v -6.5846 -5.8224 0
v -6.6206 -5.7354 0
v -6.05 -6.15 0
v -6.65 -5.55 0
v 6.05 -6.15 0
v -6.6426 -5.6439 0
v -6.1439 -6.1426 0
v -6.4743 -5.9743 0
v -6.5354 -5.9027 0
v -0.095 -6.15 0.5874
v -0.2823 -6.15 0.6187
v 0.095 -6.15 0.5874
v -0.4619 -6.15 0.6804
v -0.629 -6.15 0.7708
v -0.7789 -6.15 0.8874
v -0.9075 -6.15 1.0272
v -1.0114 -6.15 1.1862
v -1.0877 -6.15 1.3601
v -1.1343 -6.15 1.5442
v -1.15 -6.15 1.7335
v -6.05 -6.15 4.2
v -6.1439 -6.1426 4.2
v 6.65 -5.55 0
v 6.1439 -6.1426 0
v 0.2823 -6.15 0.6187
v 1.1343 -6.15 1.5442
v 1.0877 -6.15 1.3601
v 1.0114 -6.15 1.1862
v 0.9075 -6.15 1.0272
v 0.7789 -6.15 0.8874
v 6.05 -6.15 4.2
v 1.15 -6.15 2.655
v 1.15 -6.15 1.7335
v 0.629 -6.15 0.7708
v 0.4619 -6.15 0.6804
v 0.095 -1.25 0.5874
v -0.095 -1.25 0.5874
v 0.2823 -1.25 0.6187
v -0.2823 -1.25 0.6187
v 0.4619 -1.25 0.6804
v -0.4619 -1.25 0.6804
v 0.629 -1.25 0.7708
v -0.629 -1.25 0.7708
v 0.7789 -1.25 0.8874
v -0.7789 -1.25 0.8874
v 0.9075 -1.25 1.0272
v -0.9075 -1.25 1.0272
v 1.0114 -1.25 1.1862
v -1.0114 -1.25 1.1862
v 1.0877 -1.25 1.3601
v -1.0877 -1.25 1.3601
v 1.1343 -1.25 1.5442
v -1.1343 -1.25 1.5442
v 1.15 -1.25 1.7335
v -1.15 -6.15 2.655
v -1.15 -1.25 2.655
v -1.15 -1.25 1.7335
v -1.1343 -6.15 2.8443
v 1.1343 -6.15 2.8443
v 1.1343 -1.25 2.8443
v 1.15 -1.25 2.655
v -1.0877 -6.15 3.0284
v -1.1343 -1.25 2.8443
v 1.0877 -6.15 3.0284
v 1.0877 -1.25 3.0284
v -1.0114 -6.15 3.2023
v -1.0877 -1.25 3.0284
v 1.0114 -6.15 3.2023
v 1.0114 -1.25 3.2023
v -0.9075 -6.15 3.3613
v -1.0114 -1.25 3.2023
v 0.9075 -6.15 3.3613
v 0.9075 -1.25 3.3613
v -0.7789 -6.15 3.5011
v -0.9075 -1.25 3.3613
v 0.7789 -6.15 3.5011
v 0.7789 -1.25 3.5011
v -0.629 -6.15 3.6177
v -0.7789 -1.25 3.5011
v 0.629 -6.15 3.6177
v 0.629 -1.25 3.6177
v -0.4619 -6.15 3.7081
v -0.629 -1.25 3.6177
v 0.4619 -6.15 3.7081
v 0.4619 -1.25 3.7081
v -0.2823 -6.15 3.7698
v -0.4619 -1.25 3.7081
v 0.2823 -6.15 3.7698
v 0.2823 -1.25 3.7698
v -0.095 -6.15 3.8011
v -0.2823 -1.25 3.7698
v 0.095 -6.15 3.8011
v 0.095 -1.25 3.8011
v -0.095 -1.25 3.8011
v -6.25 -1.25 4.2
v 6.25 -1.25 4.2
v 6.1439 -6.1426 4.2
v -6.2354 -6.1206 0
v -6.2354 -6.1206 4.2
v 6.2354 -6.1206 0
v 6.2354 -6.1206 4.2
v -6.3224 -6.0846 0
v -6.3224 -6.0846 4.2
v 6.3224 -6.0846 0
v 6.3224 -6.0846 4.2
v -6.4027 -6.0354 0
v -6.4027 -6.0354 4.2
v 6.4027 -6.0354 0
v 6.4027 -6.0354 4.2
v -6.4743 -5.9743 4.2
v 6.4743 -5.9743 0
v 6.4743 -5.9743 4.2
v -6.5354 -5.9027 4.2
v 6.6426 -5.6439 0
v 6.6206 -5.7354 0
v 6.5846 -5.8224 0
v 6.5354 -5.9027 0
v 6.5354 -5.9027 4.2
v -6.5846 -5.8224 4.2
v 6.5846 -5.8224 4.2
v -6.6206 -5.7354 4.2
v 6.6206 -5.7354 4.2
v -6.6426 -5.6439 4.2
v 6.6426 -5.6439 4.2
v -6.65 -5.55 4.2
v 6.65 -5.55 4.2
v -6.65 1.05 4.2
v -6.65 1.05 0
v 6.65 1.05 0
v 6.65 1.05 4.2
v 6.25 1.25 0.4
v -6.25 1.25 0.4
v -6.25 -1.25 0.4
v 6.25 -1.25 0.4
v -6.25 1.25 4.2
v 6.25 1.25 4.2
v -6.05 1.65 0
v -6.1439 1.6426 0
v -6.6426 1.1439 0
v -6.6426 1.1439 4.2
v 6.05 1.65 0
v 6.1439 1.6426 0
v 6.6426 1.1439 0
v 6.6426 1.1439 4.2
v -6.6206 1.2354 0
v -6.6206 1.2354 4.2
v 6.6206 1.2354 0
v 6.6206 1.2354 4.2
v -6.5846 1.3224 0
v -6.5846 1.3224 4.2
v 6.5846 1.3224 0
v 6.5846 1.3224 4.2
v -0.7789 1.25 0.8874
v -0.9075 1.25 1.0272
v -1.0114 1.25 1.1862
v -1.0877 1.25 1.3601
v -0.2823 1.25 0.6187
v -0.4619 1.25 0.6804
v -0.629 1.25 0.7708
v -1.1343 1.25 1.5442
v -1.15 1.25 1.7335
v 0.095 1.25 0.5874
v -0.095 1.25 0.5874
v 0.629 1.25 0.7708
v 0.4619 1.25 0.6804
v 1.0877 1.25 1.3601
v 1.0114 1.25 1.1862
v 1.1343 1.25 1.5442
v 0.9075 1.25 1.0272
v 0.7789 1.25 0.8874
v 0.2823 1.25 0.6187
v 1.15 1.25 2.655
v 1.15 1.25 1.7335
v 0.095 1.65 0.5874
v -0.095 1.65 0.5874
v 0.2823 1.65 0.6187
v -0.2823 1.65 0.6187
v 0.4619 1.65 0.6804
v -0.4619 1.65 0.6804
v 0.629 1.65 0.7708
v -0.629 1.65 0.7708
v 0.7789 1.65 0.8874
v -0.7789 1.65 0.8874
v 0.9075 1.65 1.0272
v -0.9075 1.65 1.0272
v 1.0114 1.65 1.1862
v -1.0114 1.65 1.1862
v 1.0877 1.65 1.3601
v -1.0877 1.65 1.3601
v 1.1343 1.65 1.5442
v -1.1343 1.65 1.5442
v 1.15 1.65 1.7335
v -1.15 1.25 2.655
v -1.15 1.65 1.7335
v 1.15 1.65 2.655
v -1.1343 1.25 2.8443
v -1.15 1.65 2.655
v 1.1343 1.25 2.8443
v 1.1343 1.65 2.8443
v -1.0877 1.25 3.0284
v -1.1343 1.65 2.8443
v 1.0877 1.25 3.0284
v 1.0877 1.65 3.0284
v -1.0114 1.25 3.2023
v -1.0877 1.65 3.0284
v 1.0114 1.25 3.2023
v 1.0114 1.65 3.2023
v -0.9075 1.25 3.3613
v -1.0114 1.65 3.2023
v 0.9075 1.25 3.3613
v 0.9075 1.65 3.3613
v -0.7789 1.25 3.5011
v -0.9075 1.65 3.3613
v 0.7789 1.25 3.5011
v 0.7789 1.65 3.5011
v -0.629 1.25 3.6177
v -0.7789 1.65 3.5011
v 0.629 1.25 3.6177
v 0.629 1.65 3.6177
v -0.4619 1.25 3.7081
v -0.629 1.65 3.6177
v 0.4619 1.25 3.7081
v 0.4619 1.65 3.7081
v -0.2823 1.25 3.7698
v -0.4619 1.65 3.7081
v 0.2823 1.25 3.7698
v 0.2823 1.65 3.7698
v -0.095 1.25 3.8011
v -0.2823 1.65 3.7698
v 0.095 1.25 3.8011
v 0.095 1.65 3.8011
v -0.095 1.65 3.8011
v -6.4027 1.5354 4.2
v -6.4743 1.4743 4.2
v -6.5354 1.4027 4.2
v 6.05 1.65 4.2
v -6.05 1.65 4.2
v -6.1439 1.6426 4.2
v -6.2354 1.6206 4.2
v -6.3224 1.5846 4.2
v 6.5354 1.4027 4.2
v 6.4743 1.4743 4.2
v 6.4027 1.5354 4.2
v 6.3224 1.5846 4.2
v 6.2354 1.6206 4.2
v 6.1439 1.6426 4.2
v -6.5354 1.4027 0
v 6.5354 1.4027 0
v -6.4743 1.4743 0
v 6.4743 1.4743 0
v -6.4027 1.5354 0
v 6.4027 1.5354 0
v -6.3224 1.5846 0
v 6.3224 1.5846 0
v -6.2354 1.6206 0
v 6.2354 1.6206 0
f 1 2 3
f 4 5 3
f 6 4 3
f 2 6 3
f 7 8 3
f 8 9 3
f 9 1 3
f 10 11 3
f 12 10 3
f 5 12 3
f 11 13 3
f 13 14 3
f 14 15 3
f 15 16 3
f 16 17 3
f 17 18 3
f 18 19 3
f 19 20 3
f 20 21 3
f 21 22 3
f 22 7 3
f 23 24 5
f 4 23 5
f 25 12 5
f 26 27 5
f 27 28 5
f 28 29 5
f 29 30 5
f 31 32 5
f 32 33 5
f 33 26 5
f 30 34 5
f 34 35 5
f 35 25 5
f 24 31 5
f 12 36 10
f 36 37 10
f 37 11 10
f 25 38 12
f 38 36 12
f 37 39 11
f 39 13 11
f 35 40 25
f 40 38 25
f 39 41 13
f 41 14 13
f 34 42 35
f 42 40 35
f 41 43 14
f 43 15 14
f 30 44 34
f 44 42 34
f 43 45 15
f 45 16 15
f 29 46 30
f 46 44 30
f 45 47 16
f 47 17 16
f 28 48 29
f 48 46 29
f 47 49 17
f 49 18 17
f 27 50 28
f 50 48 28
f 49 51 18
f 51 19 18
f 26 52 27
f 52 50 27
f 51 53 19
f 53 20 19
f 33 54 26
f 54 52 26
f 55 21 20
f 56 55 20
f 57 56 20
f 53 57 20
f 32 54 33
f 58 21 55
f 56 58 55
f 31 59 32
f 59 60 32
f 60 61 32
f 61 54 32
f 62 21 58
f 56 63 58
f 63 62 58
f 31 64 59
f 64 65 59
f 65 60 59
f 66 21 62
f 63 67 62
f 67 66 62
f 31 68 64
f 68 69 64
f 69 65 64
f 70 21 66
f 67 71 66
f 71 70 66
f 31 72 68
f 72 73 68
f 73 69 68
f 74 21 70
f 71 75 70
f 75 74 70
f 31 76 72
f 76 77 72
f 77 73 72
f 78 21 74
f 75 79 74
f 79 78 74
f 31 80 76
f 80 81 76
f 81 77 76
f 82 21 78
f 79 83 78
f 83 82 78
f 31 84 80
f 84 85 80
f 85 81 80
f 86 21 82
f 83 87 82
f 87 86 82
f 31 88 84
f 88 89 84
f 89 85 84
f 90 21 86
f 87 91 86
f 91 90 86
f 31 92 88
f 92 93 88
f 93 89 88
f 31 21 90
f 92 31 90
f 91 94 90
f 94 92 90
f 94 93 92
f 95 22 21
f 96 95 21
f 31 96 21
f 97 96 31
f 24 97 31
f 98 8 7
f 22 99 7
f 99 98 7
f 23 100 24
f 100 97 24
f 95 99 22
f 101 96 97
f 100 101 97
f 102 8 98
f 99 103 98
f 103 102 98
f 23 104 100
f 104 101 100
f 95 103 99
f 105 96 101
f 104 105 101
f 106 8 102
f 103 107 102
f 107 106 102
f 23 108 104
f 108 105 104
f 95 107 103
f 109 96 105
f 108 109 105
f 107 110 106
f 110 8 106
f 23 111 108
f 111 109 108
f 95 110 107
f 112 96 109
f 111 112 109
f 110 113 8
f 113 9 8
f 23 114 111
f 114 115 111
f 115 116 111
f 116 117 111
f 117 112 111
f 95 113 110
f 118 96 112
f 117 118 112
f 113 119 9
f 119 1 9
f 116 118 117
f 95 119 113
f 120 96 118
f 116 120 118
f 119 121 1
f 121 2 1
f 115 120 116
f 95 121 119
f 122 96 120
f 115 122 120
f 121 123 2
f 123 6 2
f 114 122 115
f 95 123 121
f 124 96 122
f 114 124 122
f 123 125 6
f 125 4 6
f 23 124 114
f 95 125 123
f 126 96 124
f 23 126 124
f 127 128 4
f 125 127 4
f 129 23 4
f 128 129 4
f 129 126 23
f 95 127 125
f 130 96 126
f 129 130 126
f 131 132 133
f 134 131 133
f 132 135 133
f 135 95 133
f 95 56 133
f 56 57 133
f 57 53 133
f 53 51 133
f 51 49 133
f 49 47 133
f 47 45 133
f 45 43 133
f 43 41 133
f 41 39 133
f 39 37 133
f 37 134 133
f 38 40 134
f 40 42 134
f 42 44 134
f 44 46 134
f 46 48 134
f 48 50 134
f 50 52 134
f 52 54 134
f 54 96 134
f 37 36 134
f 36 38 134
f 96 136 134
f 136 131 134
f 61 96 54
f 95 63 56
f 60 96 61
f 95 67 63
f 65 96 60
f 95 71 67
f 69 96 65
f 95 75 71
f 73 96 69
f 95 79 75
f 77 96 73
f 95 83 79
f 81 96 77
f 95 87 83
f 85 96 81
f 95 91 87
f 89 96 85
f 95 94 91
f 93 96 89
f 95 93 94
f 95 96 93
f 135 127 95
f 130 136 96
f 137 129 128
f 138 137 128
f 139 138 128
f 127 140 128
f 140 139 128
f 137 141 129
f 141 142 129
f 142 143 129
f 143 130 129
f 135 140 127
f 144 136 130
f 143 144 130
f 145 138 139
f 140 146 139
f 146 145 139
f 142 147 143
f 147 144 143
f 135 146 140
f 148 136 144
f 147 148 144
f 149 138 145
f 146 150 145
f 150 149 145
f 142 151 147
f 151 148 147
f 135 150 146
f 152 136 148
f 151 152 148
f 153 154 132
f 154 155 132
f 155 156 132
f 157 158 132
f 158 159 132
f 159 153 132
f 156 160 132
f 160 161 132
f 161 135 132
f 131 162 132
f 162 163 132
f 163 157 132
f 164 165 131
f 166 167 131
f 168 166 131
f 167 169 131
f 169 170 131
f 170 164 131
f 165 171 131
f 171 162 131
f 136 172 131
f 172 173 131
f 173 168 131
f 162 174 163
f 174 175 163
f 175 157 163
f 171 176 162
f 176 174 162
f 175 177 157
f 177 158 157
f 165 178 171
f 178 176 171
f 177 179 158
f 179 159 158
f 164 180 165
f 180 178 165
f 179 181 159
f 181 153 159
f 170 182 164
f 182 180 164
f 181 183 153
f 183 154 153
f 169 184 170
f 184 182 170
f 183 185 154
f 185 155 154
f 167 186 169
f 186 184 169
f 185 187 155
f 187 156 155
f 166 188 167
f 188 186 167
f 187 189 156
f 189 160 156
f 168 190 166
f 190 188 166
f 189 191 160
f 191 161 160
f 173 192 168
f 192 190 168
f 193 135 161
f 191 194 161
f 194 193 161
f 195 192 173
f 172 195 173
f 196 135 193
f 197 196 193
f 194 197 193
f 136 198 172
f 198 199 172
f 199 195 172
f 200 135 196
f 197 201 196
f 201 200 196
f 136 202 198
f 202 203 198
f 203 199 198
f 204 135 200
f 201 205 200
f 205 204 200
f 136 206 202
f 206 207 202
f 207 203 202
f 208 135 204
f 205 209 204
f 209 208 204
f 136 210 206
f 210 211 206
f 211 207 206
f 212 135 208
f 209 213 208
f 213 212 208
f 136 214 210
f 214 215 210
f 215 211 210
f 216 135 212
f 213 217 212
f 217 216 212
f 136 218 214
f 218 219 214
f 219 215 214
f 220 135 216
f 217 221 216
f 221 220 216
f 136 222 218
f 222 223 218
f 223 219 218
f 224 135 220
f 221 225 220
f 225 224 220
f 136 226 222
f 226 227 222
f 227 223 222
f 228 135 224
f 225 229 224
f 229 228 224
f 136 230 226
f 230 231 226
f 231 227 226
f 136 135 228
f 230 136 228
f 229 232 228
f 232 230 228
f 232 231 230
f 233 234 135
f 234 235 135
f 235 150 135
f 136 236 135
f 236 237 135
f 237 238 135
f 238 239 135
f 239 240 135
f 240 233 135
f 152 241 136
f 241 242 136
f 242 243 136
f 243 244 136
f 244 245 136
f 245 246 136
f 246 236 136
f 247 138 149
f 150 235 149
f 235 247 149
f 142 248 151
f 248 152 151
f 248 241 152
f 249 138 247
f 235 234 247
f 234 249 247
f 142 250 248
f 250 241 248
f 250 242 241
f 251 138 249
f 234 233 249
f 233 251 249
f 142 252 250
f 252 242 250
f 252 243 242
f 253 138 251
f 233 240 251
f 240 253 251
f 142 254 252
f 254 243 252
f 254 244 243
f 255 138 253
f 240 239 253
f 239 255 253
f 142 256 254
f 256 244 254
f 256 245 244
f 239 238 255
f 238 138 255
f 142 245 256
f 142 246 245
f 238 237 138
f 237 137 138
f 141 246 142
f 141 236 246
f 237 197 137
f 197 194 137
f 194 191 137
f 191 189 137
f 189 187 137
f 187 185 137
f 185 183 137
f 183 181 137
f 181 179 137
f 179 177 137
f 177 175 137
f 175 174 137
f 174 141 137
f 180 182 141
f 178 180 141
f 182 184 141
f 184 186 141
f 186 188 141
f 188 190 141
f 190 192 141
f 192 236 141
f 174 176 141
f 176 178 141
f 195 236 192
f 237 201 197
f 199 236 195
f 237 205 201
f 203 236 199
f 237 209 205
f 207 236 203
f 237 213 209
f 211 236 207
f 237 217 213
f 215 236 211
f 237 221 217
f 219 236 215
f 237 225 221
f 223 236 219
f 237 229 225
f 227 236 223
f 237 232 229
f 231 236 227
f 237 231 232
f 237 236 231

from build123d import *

# Parameters (mm, degrees)
SKETCH1_W           = 12.5
SKETCH1_H           = 2.5
BOSS_EXTRUDE1_DEPTH = 0.4
SKETCH1_3_W         = 13.3
SKETCH1_3_H         = 3.3
SKETCH1_3_W_2       = 12.5
SKETCH1_3_H_2       = 2.5
EXTRUDE_THIN1_DEPTH = 4.2
SKETCH2_W           = 13.3
SKETCH2_H           = 4.2
BOSS_EXTRUDE2_DEPTH = 4.5
CUT_EXTRUDE1_DEPTH  = 12.077116051
FILLET1_R           = 0.6


with BuildPart() as part:
    # Sketch1 → Boss-Extrude1 (new body)
    with BuildSketch(Plane.XY):
        Rectangle(SKETCH1_W, SKETCH1_H)
    extrude(amount=BOSS_EXTRUDE1_DEPTH)

    # Sketch1<3> → Extrude-Thin1 (add)
    with BuildSketch(Plane.XY):
        Rectangle(SKETCH1_3_W, SKETCH1_3_H)
        Rectangle(SKETCH1_3_W_2, SKETCH1_3_H_2, mode=Mode.SUBTRACT)
    extrude(amount=EXTRUDE_THIN1_DEPTH)

    # Sketch2 → Boss-Extrude2 (add)
    with BuildSketch(Plane.XZ.offset(1.65)):
        with Locations((0, 2.1)):
            Rectangle(SKETCH2_W, SKETCH2_H)
    extrude(amount=BOSS_EXTRUDE2_DEPTH)

    # Sketch3 → Cut-Extrude1 (cut, through all)
    with BuildSketch(Plane(origin=(0, 1.65, 0), x_dir=(1, 0, 0), z_dir=(0, 1, 0))):
        with BuildLine():
            Line((1.15, -1.733499425), (1.15, -2.654986585))
            ThreePointArc((1.15, -2.654986585), (0, -3.804986585), (-1.15, -2.654986585))
            Line((-1.15, -2.654986585), (-1.15, -1.733499425))
            ThreePointArc((-1.15, -1.733499425), (0, -0.583499425), (1.15, -1.733499425))
        make_face()
    extrude(amount=-CUT_EXTRUDE1_DEPTH, mode=Mode.SUBTRACT)

    # Fillet1
    fillet1_edges = [part.edges().sort_by_distance(p)[0] for p in [
        (-6.65, 1.65, 2.1),
        (6.65, 1.65, 2.1),
        (-6.65, -6.15, 2.1),
        (6.65, -6.15, 2.1),
    ]]
    fillet(fillet1_edges, radius=FILLET1_R)


solid = part.part
